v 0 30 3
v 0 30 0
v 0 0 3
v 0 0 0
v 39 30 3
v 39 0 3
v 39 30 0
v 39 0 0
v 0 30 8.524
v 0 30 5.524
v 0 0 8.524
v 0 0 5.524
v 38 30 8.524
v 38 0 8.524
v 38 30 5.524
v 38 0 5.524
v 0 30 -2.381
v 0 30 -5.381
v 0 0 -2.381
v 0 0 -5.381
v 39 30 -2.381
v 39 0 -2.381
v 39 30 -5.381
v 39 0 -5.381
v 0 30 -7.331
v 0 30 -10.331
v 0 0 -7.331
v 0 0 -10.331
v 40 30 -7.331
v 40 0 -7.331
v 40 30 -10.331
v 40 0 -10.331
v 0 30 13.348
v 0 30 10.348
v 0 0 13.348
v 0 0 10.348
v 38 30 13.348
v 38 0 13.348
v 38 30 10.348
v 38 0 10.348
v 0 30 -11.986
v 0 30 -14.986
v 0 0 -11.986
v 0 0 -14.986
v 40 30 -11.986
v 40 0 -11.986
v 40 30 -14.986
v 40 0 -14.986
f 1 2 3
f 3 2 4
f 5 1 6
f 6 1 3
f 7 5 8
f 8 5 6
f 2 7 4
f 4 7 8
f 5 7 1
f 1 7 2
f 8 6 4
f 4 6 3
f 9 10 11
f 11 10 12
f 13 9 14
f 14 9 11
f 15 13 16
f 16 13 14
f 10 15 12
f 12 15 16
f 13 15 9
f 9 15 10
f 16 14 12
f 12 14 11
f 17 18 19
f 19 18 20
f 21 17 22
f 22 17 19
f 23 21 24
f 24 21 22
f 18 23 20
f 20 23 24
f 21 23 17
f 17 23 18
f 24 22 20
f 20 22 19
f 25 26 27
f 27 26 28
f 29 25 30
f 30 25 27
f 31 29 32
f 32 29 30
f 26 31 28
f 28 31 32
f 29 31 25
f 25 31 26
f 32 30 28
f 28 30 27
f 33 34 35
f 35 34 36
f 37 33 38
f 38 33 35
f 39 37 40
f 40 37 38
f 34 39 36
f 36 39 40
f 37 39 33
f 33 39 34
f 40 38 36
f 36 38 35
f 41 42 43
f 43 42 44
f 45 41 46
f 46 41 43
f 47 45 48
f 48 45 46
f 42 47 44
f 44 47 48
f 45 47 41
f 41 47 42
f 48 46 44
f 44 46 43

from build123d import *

# Parameters (mm, degrees)
SKETCH1_W             = 39
SKETCH1_H             = 3
BOSS_EXTRUDE1_DEPTH   = 30
SKETCH1_W_2           = 38
BOSS_EXTRUDE1_2_DEPTH = 30
BOSS_EXTRUDE1_3_DEPTH = 30
SKETCH1_W_3           = 40
BOSS_EXTRUDE1_4_DEPTH = 30
BOSS_EXTRUDE1_5_DEPTH = 30
BOSS_EXTRUDE1_6_DEPTH = 30


with BuildPart() as part:
    # Sketch1 → Boss-Extrude1 (new body)
    with BuildSketch(Plane(origin=(0, 0, 0), x_dir=(1, 0, 0), z_dir=(0, 1, 0))):
        with Locations((19.5, -1.5)):
            Rectangle(SKETCH1_W, SKETCH1_H)
    extrude(amount=BOSS_EXTRUDE1_DEPTH)


with BuildPart() as body_2:
    # Sketch1 → Boss-Extrude1 2 (new body)
    with BuildSketch(Plane(origin=(0, 0, 0), x_dir=(1, 0, 0), z_dir=(0, 1, 0))):
        with Locations((19, -7.023809524)):
            Rectangle(SKETCH1_W_2, SKETCH1_H)
    extrude(amount=BOSS_EXTRUDE1_2_DEPTH)


with BuildPart() as body_3:
    # Sketch1 → Boss-Extrude1 3 (new body)
    with BuildSketch(Plane(origin=(0, 0, 0), x_dir=(1, 0, 0), z_dir=(0, 1, 0))):
        with Locations((19.5, 3.880952381)):
            Rectangle(SKETCH1_W, SKETCH1_H)
    extrude(amount=BOSS_EXTRUDE1_3_DEPTH)


with BuildPart() as body_4:
    # Sketch1 → Boss-Extrude1 4 (new body)
    with BuildSketch(Plane(origin=(0, 0, 0), x_dir=(1, 0, 0), z_dir=(0, 1, 0))):
        with Locations((20, 8.83061545)):
            Rectangle(SKETCH1_W_3, SKETCH1_H)
    extrude(amount=BOSS_EXTRUDE1_4_DEPTH)


with BuildPart() as body_5:
    # Sketch1 → Boss-Extrude1 5 (new body)
    with BuildSketch(Plane(origin=(0, 0, 0), x_dir=(1, 0, 0), z_dir=(0, 1, 0))):
        with Locations((19, -11.847788313)):
            Rectangle(SKETCH1_W_2, SKETCH1_H)
    extrude(amount=BOSS_EXTRUDE1_5_DEPTH)


with BuildPart() as body_6:
    # Sketch1 → Boss-Extrude1 6 (new body)
    with BuildSketch(Plane(origin=(0, 0, 0), x_dir=(1, 0, 0), z_dir=(0, 1, 0))):
        with Locations((20, 13.486479069)):
            Rectangle(SKETCH1_W_3, SKETCH1_H)
    extrude(amount=BOSS_EXTRUDE1_6_DEPTH)


solid = Compound([part.part, body_2.part, body_3.part, body_4.part, body_5.part, body_6.part])
